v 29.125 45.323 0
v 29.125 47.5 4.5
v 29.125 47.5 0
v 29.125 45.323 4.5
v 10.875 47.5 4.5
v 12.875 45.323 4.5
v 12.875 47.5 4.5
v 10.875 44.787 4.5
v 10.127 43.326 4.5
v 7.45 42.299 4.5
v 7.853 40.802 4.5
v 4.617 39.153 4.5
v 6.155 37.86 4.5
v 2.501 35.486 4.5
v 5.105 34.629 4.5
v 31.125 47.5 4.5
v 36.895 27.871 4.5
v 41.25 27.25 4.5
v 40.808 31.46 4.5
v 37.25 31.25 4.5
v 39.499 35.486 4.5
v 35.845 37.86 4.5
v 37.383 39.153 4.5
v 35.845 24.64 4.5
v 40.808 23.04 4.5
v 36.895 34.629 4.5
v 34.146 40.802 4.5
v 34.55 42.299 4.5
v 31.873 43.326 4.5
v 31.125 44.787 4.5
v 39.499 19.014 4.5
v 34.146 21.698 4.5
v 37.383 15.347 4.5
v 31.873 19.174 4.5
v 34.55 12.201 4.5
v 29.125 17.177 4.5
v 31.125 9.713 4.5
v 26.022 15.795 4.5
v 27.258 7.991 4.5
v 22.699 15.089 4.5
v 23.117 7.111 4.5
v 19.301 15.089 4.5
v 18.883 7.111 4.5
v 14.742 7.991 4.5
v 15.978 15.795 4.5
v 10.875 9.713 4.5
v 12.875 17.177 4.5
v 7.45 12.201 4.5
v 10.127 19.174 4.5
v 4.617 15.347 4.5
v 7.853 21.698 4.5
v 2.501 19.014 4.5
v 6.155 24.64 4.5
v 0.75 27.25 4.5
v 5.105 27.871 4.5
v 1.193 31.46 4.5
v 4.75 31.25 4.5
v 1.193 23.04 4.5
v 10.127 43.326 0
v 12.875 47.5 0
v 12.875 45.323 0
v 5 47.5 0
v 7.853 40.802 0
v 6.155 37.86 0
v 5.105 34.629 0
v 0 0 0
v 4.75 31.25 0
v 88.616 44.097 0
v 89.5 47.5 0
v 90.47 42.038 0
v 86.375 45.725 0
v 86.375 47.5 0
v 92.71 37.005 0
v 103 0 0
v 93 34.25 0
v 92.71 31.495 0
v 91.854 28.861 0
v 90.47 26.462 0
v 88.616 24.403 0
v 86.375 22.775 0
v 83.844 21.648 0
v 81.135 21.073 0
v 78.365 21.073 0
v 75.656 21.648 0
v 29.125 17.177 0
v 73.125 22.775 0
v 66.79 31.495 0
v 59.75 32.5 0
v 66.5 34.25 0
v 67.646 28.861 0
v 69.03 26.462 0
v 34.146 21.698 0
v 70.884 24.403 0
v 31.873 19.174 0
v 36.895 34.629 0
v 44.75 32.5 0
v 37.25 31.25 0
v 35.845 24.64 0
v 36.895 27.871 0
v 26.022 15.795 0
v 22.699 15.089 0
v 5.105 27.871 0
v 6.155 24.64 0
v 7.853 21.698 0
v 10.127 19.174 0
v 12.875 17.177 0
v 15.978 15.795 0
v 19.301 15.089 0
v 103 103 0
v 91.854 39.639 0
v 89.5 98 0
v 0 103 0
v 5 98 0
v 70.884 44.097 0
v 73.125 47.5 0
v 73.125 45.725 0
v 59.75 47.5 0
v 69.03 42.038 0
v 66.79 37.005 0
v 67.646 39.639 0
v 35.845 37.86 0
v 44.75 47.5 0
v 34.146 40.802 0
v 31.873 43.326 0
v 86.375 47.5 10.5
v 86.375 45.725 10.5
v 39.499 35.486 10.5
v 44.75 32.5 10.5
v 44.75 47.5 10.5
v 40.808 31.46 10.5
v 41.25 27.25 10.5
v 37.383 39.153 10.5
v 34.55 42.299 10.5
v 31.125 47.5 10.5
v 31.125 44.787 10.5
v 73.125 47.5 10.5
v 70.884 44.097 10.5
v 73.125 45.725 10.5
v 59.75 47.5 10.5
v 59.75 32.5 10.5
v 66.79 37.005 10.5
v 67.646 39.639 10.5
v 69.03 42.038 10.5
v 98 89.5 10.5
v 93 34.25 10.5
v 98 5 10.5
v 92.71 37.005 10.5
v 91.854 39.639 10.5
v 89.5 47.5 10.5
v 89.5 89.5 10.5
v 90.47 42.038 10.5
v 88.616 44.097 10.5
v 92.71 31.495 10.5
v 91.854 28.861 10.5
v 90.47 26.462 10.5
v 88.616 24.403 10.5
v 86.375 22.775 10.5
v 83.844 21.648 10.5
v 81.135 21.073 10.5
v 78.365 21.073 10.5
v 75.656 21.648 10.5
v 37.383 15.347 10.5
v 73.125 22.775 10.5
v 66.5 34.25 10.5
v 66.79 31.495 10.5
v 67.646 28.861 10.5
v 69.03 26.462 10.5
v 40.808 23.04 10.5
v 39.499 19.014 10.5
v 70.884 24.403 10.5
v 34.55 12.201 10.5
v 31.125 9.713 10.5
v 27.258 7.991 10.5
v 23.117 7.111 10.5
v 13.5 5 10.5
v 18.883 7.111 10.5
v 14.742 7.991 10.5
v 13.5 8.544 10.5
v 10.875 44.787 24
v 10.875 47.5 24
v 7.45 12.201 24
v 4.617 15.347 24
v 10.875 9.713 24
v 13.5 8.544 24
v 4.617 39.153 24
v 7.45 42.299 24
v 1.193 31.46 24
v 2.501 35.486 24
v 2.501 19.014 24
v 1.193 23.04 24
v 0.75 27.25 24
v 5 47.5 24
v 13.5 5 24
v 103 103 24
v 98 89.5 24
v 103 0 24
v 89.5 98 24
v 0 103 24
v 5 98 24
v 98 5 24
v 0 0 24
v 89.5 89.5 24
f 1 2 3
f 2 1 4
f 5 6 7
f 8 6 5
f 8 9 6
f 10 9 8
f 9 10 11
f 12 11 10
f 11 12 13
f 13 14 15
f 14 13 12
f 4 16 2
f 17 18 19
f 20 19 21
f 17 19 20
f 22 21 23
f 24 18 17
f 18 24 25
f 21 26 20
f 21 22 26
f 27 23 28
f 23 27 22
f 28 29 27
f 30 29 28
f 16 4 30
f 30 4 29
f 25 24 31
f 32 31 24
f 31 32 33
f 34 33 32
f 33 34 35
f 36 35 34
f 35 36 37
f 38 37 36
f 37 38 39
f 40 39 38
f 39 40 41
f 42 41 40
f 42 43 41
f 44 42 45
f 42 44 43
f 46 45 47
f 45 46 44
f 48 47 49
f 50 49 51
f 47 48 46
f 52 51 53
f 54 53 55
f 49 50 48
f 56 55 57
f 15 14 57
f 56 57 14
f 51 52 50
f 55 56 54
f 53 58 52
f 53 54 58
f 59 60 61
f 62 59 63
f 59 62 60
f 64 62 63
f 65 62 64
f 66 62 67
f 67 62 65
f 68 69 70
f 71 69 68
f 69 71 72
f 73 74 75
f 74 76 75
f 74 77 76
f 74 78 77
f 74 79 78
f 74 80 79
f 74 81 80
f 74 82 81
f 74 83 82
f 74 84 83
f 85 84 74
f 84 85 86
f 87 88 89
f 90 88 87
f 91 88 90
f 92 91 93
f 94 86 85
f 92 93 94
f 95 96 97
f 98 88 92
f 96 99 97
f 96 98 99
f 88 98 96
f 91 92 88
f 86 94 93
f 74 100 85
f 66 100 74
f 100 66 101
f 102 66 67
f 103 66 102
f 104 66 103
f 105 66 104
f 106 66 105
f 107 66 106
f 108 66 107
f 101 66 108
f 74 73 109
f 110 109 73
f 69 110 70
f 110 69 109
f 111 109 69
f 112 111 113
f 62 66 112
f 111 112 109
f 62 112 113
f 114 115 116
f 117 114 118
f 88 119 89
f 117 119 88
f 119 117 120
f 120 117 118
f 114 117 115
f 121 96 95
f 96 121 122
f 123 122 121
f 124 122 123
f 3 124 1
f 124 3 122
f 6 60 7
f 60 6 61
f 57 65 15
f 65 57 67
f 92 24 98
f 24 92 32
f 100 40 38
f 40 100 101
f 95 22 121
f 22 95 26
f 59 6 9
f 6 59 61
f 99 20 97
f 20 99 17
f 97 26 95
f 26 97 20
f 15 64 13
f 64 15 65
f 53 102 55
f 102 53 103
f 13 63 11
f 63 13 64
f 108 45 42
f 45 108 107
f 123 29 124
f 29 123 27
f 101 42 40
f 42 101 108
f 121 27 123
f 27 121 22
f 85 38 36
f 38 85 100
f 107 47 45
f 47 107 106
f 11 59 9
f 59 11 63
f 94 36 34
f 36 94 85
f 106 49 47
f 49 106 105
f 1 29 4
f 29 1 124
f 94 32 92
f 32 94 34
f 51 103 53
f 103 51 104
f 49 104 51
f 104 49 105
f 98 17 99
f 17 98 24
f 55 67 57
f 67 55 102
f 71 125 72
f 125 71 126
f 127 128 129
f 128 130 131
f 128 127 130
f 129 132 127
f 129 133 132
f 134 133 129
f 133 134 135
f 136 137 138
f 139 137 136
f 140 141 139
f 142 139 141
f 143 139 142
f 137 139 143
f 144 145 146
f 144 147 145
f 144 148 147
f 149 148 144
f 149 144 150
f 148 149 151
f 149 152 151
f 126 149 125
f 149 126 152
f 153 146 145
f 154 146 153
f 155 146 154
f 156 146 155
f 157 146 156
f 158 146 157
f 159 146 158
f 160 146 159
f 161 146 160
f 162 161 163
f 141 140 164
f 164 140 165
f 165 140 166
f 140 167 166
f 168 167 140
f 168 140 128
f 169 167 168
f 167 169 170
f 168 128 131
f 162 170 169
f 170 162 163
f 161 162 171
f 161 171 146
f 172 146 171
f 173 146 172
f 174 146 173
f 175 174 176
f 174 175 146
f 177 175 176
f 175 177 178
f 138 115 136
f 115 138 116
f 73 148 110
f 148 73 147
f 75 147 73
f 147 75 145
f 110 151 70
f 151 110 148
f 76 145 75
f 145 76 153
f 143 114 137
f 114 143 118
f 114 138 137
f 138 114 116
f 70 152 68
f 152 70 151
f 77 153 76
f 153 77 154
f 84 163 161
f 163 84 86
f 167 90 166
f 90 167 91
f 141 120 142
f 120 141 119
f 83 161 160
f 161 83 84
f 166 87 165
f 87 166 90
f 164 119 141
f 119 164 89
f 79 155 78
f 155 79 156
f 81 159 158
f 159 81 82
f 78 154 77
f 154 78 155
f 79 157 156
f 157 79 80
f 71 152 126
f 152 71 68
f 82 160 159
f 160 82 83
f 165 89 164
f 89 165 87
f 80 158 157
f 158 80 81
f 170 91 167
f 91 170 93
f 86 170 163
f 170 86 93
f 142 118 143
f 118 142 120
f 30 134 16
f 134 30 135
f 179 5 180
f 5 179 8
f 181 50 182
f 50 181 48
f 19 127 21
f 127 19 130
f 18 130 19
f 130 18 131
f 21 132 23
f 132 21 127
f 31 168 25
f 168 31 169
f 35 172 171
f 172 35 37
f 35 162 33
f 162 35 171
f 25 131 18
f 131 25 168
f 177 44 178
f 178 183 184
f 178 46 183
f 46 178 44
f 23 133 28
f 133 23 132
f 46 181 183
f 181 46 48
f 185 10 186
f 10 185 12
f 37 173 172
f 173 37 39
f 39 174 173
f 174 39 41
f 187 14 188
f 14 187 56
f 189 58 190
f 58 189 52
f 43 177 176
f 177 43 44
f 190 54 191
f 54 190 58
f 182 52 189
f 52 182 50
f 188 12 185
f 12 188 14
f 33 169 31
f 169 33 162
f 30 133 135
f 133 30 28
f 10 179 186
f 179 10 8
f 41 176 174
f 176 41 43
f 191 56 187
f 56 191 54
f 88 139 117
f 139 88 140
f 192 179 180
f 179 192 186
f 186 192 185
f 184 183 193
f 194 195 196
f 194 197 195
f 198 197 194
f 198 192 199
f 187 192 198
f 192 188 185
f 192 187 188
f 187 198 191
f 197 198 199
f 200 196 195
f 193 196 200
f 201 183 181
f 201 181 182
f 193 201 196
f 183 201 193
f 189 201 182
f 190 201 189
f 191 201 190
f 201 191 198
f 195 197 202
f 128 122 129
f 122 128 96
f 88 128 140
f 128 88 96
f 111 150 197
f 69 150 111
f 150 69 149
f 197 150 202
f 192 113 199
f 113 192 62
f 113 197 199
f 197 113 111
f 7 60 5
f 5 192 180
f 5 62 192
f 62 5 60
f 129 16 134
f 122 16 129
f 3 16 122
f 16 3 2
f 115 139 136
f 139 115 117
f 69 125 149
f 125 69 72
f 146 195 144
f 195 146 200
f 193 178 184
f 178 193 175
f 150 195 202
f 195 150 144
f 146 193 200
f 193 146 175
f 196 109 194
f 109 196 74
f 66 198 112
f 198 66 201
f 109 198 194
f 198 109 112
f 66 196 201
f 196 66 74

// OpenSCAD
TILE_HEIGHT = 1.5;
function tile_h(count) = count * TILE_HEIGHT;

AREA_WIDTH = 84.5;
AREA_DEPTH = 84.5;
AREA_COUNT = 9;
AREA_HEIGHT = tile_h(AREA_COUNT);

ALIBI_WIDTH = 84.5;
ALIBI_DEPTH = 50.5;
ALIBI_COUNT = 9;
ALIBI_HEIGHT = tile_h(ALIBI_COUNT);

BOX_WIDTH = 103;
BOX_DEPTH = 103;
BOX_HEIGHT = AREA_HEIGHT + ALIBI_HEIGHT;

BOOK_HEIGHT = 3;
WALL_WIDTH = 5;
SLOT_WIDTH = 15;

base_height = BOX_HEIGHT - BOOK_HEIGHT;
area_edge = BOX_WIDTH - WALL_WIDTH;

token_top = base_height - AREA_HEIGHT;

ACTION_TOKEN_DIAMETER = 40.5;
ACTION_TOKEN_RADIUS = ACTION_TOKEN_DIAMETER / 2;
ACTION_TOKEN_COUNT = 4;
ACTION_TOKEN_HEIGHT = tile_h(ACTION_TOKEN_COUNT);
ACTION_TOKEN_OFFSET_X = area_edge - AREA_WIDTH + ACTION_TOKEN_RADIUS - (ACTION_TOKEN_DIAMETER - SLOT_WIDTH) / 2;

DETECTIVE_TOKEN_DIAMETER = 32.5;
DETECTIVE_TOKEN_RADIUS = DETECTIVE_TOKEN_DIAMETER / 2;
DETECTIVE_TOKEN_COUNT = 3;
DETECTIVE_TOKEN_HEIGHT = tile_h(DETECTIVE_TOKEN_COUNT);

TIME_TOKEN_DIAMETER = 26.5;
TIME_TOKEN_RADIUS = TIME_TOKEN_DIAMETER / 2;
TIME_TOKEN_COUNT = 8;
TIME_TOKEN_HEIGHT = tile_h(TIME_TOKEN_COUNT);

alibi_edge = BOX_DEPTH - WALL_WIDTH - ALIBI_DEPTH;

module detective_tokens() {
    half_radius = DETECTIVE_TOKEN_RADIUS / 2;
    offset_x = ACTION_TOKEN_OFFSET_X;
    offset_y = alibi_edge - DETECTIVE_TOKEN_RADIUS;
    offset_z = token_top - DETECTIVE_TOKEN_HEIGHT - ACTION_TOKEN_HEIGHT;
    
    translate([offset_x, offset_y, offset_z])
    union() {
        translate([-half_radius, half_radius, 0])
        cube([DETECTIVE_TOKEN_RADIUS, SLOT_WIDTH, DETECTIVE_TOKEN_HEIGHT]);
        cylinder(h = DETECTIVE_TOKEN_HEIGHT, d = DETECTIVE_TOKEN_DIAMETER);
    }
}

module time_tokens() {
    half_radius = TIME_TOKEN_RADIUS / 2;
    offset_x = area_edge - DETECTIVE_TOKEN_RADIUS - 2;
    offset_y = alibi_edge - TIME_TOKEN_RADIUS;
    offset_z = token_top - TIME_TOKEN_HEIGHT;
    
    translate([offset_x, offset_y, offset_z])
    union() {
        translate([-half_radius, half_radius, 0])
        cube([TIME_TOKEN_RADIUS, SLOT_WIDTH, TIME_TOKEN_HEIGHT]);
        cylinder(h = TIME_TOKEN_HEIGHT, d = TIME_TOKEN_DIAMETER);
    }
}

module action_tokens() {
    half_radius = ACTION_TOKEN_RADIUS / 2;
    offset_y = alibi_edge - ACTION_TOKEN_RADIUS;
    offset_z = token_top - ACTION_TOKEN_HEIGHT;
    
    translate([ACTION_TOKEN_OFFSET_X, offset_y, offset_z])
    union() {
        translate([-half_radius, half_radius, 0])
        cube([ACTION_TOKEN_RADIUS, SLOT_WIDTH, ACTION_TOKEN_HEIGHT + 30]);
        cylinder(h = ACTION_TOKEN_HEIGHT + 30, d = ACTION_TOKEN_DIAMETER);
    }
}

module token_slots() {
    union() {
        detective_tokens();
        time_tokens();
        action_tokens();
    }
}

module alibi_block() {
    offset_x = WALL_WIDTH ;
    offset_y = BOX_DEPTH - ALIBI_DEPTH - WALL_WIDTH;
    offset_z = base_height - AREA_HEIGHT - ALIBI_HEIGHT;
    
    translate([offset_x, offset_y, offset_z])
    union() {
        translate([(ALIBI_WIDTH - SLOT_WIDTH) / 2 + 5, -SLOT_WIDTH, 0])
        cube([SLOT_WIDTH, ALIBI_DEPTH, BOX_HEIGHT]);
        cube([ALIBI_WIDTH, ALIBI_DEPTH, BOX_HEIGHT]);
    }
}

module area_block() {
    offset = BOX_WIDTH - AREA_WIDTH - WALL_WIDTH;
    translate([offset, WALL_WIDTH, base_height - AREA_HEIGHT])
    cube([AREA_WIDTH, AREA_DEPTH, AREA_HEIGHT]);
}

module base_block() {
    cube([BOX_WIDTH, BOX_DEPTH, base_height]);
}

difference() {
    base_block();
    union() {
        token_slots();
        alibi_block();
        area_block();
    }
}
